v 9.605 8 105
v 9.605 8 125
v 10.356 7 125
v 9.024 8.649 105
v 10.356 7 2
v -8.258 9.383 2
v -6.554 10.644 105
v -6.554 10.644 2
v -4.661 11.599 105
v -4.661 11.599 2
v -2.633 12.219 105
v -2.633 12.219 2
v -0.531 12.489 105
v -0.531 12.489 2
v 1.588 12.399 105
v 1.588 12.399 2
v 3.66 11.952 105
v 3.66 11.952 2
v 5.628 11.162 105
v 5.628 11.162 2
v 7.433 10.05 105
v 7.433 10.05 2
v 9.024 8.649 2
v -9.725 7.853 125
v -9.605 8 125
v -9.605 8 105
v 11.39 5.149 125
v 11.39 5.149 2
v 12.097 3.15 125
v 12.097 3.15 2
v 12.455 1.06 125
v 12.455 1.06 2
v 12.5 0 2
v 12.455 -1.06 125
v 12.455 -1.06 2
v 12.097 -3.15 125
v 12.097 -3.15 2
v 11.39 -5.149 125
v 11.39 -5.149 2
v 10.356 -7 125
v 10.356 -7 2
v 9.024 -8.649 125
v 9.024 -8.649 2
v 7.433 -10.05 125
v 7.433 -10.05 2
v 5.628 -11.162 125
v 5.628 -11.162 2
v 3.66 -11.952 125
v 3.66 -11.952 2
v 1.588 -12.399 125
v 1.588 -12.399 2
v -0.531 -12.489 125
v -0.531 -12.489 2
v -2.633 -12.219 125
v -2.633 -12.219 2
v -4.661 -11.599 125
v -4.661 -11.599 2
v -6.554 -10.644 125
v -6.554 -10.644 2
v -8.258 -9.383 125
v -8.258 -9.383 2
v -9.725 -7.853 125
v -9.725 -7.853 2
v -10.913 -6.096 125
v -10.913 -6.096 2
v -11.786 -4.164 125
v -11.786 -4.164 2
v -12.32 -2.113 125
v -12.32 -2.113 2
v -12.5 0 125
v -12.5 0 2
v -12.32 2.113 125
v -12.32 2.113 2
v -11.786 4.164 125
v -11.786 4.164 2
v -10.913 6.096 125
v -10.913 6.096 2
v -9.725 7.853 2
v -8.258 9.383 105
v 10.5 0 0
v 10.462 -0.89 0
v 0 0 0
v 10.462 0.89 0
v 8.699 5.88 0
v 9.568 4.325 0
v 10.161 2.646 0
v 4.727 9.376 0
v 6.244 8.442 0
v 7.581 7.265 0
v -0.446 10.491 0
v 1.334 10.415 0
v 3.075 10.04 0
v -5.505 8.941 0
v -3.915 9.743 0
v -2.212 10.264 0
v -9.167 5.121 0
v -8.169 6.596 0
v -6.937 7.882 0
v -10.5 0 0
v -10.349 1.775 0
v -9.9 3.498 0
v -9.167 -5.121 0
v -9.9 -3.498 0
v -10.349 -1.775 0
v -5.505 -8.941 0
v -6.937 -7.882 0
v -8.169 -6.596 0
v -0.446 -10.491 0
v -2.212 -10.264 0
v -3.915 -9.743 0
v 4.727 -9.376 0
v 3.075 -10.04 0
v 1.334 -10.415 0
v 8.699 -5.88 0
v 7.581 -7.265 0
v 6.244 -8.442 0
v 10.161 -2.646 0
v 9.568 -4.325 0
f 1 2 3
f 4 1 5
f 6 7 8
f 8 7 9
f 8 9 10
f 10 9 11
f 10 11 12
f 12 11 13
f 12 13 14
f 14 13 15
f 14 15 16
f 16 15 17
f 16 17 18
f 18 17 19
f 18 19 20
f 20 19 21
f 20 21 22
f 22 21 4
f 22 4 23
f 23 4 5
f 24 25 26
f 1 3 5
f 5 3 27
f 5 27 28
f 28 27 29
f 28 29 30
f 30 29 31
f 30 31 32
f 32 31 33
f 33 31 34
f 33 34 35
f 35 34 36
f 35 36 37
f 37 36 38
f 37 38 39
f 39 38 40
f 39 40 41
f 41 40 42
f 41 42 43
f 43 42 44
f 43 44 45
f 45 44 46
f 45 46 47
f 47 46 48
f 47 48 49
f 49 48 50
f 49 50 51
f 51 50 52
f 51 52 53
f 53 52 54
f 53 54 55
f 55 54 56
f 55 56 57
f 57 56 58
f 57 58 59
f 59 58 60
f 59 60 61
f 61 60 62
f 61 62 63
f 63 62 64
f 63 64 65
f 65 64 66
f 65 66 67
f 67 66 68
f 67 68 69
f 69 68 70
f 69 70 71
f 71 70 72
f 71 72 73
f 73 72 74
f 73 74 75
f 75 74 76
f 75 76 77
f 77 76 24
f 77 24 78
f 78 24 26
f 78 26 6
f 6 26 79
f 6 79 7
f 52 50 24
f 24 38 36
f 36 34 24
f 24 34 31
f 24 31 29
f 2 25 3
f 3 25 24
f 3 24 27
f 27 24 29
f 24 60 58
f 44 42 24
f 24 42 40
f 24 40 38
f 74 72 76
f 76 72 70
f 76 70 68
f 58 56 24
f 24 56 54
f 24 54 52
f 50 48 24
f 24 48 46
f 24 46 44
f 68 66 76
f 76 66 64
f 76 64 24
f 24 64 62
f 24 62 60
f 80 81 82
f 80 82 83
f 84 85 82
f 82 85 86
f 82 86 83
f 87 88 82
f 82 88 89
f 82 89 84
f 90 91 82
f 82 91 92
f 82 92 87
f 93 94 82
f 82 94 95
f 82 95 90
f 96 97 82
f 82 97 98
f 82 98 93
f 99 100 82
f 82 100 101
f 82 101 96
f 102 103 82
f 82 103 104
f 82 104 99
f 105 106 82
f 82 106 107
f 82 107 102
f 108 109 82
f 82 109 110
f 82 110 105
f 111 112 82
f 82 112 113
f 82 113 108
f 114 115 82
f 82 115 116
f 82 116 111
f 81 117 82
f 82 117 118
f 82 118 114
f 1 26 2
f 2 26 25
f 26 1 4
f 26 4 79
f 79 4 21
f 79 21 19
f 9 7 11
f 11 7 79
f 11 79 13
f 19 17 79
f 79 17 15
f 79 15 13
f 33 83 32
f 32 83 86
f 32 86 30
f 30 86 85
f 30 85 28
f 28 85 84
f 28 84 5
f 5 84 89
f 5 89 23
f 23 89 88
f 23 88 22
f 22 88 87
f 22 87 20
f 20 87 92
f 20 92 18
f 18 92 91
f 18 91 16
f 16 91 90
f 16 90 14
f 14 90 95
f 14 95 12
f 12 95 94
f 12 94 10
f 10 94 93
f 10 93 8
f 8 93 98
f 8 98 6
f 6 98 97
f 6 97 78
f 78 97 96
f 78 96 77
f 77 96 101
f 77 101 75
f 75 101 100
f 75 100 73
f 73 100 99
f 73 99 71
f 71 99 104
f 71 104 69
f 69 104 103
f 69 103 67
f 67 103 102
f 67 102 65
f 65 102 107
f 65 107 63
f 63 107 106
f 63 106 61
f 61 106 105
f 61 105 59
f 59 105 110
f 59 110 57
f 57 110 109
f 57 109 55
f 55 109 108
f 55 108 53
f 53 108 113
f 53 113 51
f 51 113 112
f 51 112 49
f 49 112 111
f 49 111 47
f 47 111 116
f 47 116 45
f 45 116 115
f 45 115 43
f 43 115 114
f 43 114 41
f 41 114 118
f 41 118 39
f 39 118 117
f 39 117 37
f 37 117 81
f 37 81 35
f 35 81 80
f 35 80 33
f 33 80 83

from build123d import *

# Parameters (mm, degrees)
SKETCH1_R           = 12.5
BOSS_EXTRUDE1_DEPTH = 125
CUT_EXTRUDE1_START  = -20
CUT_EXTRUDE1_DEPTH  = 20
CHAMFER1_SIZE       = 2


with BuildPart() as part:
    # Sketch1 → Boss-Extrude1 (new body)
    with BuildSketch(Plane.XY):
        Circle(SKETCH1_R)
    extrude(amount=BOSS_EXTRUDE1_DEPTH)

    # Sketch2 → Cut-Extrude1 (cut)
    with BuildSketch(Plane.XY.offset(125).offset(CUT_EXTRUDE1_START)):
        with BuildLine():
            Line((-9.604686356, 8), (9.604686356, 8))
            ThreePointArc((9.604686356, 8), (0, 12.5), (-9.604686356, 8))
        make_face()
    extrude(amount=CUT_EXTRUDE1_DEPTH, mode=Mode.SUBTRACT)

    # Chamfer1
    chamfer1_edges = [part.edges().sort_by_distance(p)[0] for p in [
        (-12.5, 0, 0),
    ]]
    chamfer(chamfer1_edges, length=CHAMFER1_SIZE)


solid = part.part
